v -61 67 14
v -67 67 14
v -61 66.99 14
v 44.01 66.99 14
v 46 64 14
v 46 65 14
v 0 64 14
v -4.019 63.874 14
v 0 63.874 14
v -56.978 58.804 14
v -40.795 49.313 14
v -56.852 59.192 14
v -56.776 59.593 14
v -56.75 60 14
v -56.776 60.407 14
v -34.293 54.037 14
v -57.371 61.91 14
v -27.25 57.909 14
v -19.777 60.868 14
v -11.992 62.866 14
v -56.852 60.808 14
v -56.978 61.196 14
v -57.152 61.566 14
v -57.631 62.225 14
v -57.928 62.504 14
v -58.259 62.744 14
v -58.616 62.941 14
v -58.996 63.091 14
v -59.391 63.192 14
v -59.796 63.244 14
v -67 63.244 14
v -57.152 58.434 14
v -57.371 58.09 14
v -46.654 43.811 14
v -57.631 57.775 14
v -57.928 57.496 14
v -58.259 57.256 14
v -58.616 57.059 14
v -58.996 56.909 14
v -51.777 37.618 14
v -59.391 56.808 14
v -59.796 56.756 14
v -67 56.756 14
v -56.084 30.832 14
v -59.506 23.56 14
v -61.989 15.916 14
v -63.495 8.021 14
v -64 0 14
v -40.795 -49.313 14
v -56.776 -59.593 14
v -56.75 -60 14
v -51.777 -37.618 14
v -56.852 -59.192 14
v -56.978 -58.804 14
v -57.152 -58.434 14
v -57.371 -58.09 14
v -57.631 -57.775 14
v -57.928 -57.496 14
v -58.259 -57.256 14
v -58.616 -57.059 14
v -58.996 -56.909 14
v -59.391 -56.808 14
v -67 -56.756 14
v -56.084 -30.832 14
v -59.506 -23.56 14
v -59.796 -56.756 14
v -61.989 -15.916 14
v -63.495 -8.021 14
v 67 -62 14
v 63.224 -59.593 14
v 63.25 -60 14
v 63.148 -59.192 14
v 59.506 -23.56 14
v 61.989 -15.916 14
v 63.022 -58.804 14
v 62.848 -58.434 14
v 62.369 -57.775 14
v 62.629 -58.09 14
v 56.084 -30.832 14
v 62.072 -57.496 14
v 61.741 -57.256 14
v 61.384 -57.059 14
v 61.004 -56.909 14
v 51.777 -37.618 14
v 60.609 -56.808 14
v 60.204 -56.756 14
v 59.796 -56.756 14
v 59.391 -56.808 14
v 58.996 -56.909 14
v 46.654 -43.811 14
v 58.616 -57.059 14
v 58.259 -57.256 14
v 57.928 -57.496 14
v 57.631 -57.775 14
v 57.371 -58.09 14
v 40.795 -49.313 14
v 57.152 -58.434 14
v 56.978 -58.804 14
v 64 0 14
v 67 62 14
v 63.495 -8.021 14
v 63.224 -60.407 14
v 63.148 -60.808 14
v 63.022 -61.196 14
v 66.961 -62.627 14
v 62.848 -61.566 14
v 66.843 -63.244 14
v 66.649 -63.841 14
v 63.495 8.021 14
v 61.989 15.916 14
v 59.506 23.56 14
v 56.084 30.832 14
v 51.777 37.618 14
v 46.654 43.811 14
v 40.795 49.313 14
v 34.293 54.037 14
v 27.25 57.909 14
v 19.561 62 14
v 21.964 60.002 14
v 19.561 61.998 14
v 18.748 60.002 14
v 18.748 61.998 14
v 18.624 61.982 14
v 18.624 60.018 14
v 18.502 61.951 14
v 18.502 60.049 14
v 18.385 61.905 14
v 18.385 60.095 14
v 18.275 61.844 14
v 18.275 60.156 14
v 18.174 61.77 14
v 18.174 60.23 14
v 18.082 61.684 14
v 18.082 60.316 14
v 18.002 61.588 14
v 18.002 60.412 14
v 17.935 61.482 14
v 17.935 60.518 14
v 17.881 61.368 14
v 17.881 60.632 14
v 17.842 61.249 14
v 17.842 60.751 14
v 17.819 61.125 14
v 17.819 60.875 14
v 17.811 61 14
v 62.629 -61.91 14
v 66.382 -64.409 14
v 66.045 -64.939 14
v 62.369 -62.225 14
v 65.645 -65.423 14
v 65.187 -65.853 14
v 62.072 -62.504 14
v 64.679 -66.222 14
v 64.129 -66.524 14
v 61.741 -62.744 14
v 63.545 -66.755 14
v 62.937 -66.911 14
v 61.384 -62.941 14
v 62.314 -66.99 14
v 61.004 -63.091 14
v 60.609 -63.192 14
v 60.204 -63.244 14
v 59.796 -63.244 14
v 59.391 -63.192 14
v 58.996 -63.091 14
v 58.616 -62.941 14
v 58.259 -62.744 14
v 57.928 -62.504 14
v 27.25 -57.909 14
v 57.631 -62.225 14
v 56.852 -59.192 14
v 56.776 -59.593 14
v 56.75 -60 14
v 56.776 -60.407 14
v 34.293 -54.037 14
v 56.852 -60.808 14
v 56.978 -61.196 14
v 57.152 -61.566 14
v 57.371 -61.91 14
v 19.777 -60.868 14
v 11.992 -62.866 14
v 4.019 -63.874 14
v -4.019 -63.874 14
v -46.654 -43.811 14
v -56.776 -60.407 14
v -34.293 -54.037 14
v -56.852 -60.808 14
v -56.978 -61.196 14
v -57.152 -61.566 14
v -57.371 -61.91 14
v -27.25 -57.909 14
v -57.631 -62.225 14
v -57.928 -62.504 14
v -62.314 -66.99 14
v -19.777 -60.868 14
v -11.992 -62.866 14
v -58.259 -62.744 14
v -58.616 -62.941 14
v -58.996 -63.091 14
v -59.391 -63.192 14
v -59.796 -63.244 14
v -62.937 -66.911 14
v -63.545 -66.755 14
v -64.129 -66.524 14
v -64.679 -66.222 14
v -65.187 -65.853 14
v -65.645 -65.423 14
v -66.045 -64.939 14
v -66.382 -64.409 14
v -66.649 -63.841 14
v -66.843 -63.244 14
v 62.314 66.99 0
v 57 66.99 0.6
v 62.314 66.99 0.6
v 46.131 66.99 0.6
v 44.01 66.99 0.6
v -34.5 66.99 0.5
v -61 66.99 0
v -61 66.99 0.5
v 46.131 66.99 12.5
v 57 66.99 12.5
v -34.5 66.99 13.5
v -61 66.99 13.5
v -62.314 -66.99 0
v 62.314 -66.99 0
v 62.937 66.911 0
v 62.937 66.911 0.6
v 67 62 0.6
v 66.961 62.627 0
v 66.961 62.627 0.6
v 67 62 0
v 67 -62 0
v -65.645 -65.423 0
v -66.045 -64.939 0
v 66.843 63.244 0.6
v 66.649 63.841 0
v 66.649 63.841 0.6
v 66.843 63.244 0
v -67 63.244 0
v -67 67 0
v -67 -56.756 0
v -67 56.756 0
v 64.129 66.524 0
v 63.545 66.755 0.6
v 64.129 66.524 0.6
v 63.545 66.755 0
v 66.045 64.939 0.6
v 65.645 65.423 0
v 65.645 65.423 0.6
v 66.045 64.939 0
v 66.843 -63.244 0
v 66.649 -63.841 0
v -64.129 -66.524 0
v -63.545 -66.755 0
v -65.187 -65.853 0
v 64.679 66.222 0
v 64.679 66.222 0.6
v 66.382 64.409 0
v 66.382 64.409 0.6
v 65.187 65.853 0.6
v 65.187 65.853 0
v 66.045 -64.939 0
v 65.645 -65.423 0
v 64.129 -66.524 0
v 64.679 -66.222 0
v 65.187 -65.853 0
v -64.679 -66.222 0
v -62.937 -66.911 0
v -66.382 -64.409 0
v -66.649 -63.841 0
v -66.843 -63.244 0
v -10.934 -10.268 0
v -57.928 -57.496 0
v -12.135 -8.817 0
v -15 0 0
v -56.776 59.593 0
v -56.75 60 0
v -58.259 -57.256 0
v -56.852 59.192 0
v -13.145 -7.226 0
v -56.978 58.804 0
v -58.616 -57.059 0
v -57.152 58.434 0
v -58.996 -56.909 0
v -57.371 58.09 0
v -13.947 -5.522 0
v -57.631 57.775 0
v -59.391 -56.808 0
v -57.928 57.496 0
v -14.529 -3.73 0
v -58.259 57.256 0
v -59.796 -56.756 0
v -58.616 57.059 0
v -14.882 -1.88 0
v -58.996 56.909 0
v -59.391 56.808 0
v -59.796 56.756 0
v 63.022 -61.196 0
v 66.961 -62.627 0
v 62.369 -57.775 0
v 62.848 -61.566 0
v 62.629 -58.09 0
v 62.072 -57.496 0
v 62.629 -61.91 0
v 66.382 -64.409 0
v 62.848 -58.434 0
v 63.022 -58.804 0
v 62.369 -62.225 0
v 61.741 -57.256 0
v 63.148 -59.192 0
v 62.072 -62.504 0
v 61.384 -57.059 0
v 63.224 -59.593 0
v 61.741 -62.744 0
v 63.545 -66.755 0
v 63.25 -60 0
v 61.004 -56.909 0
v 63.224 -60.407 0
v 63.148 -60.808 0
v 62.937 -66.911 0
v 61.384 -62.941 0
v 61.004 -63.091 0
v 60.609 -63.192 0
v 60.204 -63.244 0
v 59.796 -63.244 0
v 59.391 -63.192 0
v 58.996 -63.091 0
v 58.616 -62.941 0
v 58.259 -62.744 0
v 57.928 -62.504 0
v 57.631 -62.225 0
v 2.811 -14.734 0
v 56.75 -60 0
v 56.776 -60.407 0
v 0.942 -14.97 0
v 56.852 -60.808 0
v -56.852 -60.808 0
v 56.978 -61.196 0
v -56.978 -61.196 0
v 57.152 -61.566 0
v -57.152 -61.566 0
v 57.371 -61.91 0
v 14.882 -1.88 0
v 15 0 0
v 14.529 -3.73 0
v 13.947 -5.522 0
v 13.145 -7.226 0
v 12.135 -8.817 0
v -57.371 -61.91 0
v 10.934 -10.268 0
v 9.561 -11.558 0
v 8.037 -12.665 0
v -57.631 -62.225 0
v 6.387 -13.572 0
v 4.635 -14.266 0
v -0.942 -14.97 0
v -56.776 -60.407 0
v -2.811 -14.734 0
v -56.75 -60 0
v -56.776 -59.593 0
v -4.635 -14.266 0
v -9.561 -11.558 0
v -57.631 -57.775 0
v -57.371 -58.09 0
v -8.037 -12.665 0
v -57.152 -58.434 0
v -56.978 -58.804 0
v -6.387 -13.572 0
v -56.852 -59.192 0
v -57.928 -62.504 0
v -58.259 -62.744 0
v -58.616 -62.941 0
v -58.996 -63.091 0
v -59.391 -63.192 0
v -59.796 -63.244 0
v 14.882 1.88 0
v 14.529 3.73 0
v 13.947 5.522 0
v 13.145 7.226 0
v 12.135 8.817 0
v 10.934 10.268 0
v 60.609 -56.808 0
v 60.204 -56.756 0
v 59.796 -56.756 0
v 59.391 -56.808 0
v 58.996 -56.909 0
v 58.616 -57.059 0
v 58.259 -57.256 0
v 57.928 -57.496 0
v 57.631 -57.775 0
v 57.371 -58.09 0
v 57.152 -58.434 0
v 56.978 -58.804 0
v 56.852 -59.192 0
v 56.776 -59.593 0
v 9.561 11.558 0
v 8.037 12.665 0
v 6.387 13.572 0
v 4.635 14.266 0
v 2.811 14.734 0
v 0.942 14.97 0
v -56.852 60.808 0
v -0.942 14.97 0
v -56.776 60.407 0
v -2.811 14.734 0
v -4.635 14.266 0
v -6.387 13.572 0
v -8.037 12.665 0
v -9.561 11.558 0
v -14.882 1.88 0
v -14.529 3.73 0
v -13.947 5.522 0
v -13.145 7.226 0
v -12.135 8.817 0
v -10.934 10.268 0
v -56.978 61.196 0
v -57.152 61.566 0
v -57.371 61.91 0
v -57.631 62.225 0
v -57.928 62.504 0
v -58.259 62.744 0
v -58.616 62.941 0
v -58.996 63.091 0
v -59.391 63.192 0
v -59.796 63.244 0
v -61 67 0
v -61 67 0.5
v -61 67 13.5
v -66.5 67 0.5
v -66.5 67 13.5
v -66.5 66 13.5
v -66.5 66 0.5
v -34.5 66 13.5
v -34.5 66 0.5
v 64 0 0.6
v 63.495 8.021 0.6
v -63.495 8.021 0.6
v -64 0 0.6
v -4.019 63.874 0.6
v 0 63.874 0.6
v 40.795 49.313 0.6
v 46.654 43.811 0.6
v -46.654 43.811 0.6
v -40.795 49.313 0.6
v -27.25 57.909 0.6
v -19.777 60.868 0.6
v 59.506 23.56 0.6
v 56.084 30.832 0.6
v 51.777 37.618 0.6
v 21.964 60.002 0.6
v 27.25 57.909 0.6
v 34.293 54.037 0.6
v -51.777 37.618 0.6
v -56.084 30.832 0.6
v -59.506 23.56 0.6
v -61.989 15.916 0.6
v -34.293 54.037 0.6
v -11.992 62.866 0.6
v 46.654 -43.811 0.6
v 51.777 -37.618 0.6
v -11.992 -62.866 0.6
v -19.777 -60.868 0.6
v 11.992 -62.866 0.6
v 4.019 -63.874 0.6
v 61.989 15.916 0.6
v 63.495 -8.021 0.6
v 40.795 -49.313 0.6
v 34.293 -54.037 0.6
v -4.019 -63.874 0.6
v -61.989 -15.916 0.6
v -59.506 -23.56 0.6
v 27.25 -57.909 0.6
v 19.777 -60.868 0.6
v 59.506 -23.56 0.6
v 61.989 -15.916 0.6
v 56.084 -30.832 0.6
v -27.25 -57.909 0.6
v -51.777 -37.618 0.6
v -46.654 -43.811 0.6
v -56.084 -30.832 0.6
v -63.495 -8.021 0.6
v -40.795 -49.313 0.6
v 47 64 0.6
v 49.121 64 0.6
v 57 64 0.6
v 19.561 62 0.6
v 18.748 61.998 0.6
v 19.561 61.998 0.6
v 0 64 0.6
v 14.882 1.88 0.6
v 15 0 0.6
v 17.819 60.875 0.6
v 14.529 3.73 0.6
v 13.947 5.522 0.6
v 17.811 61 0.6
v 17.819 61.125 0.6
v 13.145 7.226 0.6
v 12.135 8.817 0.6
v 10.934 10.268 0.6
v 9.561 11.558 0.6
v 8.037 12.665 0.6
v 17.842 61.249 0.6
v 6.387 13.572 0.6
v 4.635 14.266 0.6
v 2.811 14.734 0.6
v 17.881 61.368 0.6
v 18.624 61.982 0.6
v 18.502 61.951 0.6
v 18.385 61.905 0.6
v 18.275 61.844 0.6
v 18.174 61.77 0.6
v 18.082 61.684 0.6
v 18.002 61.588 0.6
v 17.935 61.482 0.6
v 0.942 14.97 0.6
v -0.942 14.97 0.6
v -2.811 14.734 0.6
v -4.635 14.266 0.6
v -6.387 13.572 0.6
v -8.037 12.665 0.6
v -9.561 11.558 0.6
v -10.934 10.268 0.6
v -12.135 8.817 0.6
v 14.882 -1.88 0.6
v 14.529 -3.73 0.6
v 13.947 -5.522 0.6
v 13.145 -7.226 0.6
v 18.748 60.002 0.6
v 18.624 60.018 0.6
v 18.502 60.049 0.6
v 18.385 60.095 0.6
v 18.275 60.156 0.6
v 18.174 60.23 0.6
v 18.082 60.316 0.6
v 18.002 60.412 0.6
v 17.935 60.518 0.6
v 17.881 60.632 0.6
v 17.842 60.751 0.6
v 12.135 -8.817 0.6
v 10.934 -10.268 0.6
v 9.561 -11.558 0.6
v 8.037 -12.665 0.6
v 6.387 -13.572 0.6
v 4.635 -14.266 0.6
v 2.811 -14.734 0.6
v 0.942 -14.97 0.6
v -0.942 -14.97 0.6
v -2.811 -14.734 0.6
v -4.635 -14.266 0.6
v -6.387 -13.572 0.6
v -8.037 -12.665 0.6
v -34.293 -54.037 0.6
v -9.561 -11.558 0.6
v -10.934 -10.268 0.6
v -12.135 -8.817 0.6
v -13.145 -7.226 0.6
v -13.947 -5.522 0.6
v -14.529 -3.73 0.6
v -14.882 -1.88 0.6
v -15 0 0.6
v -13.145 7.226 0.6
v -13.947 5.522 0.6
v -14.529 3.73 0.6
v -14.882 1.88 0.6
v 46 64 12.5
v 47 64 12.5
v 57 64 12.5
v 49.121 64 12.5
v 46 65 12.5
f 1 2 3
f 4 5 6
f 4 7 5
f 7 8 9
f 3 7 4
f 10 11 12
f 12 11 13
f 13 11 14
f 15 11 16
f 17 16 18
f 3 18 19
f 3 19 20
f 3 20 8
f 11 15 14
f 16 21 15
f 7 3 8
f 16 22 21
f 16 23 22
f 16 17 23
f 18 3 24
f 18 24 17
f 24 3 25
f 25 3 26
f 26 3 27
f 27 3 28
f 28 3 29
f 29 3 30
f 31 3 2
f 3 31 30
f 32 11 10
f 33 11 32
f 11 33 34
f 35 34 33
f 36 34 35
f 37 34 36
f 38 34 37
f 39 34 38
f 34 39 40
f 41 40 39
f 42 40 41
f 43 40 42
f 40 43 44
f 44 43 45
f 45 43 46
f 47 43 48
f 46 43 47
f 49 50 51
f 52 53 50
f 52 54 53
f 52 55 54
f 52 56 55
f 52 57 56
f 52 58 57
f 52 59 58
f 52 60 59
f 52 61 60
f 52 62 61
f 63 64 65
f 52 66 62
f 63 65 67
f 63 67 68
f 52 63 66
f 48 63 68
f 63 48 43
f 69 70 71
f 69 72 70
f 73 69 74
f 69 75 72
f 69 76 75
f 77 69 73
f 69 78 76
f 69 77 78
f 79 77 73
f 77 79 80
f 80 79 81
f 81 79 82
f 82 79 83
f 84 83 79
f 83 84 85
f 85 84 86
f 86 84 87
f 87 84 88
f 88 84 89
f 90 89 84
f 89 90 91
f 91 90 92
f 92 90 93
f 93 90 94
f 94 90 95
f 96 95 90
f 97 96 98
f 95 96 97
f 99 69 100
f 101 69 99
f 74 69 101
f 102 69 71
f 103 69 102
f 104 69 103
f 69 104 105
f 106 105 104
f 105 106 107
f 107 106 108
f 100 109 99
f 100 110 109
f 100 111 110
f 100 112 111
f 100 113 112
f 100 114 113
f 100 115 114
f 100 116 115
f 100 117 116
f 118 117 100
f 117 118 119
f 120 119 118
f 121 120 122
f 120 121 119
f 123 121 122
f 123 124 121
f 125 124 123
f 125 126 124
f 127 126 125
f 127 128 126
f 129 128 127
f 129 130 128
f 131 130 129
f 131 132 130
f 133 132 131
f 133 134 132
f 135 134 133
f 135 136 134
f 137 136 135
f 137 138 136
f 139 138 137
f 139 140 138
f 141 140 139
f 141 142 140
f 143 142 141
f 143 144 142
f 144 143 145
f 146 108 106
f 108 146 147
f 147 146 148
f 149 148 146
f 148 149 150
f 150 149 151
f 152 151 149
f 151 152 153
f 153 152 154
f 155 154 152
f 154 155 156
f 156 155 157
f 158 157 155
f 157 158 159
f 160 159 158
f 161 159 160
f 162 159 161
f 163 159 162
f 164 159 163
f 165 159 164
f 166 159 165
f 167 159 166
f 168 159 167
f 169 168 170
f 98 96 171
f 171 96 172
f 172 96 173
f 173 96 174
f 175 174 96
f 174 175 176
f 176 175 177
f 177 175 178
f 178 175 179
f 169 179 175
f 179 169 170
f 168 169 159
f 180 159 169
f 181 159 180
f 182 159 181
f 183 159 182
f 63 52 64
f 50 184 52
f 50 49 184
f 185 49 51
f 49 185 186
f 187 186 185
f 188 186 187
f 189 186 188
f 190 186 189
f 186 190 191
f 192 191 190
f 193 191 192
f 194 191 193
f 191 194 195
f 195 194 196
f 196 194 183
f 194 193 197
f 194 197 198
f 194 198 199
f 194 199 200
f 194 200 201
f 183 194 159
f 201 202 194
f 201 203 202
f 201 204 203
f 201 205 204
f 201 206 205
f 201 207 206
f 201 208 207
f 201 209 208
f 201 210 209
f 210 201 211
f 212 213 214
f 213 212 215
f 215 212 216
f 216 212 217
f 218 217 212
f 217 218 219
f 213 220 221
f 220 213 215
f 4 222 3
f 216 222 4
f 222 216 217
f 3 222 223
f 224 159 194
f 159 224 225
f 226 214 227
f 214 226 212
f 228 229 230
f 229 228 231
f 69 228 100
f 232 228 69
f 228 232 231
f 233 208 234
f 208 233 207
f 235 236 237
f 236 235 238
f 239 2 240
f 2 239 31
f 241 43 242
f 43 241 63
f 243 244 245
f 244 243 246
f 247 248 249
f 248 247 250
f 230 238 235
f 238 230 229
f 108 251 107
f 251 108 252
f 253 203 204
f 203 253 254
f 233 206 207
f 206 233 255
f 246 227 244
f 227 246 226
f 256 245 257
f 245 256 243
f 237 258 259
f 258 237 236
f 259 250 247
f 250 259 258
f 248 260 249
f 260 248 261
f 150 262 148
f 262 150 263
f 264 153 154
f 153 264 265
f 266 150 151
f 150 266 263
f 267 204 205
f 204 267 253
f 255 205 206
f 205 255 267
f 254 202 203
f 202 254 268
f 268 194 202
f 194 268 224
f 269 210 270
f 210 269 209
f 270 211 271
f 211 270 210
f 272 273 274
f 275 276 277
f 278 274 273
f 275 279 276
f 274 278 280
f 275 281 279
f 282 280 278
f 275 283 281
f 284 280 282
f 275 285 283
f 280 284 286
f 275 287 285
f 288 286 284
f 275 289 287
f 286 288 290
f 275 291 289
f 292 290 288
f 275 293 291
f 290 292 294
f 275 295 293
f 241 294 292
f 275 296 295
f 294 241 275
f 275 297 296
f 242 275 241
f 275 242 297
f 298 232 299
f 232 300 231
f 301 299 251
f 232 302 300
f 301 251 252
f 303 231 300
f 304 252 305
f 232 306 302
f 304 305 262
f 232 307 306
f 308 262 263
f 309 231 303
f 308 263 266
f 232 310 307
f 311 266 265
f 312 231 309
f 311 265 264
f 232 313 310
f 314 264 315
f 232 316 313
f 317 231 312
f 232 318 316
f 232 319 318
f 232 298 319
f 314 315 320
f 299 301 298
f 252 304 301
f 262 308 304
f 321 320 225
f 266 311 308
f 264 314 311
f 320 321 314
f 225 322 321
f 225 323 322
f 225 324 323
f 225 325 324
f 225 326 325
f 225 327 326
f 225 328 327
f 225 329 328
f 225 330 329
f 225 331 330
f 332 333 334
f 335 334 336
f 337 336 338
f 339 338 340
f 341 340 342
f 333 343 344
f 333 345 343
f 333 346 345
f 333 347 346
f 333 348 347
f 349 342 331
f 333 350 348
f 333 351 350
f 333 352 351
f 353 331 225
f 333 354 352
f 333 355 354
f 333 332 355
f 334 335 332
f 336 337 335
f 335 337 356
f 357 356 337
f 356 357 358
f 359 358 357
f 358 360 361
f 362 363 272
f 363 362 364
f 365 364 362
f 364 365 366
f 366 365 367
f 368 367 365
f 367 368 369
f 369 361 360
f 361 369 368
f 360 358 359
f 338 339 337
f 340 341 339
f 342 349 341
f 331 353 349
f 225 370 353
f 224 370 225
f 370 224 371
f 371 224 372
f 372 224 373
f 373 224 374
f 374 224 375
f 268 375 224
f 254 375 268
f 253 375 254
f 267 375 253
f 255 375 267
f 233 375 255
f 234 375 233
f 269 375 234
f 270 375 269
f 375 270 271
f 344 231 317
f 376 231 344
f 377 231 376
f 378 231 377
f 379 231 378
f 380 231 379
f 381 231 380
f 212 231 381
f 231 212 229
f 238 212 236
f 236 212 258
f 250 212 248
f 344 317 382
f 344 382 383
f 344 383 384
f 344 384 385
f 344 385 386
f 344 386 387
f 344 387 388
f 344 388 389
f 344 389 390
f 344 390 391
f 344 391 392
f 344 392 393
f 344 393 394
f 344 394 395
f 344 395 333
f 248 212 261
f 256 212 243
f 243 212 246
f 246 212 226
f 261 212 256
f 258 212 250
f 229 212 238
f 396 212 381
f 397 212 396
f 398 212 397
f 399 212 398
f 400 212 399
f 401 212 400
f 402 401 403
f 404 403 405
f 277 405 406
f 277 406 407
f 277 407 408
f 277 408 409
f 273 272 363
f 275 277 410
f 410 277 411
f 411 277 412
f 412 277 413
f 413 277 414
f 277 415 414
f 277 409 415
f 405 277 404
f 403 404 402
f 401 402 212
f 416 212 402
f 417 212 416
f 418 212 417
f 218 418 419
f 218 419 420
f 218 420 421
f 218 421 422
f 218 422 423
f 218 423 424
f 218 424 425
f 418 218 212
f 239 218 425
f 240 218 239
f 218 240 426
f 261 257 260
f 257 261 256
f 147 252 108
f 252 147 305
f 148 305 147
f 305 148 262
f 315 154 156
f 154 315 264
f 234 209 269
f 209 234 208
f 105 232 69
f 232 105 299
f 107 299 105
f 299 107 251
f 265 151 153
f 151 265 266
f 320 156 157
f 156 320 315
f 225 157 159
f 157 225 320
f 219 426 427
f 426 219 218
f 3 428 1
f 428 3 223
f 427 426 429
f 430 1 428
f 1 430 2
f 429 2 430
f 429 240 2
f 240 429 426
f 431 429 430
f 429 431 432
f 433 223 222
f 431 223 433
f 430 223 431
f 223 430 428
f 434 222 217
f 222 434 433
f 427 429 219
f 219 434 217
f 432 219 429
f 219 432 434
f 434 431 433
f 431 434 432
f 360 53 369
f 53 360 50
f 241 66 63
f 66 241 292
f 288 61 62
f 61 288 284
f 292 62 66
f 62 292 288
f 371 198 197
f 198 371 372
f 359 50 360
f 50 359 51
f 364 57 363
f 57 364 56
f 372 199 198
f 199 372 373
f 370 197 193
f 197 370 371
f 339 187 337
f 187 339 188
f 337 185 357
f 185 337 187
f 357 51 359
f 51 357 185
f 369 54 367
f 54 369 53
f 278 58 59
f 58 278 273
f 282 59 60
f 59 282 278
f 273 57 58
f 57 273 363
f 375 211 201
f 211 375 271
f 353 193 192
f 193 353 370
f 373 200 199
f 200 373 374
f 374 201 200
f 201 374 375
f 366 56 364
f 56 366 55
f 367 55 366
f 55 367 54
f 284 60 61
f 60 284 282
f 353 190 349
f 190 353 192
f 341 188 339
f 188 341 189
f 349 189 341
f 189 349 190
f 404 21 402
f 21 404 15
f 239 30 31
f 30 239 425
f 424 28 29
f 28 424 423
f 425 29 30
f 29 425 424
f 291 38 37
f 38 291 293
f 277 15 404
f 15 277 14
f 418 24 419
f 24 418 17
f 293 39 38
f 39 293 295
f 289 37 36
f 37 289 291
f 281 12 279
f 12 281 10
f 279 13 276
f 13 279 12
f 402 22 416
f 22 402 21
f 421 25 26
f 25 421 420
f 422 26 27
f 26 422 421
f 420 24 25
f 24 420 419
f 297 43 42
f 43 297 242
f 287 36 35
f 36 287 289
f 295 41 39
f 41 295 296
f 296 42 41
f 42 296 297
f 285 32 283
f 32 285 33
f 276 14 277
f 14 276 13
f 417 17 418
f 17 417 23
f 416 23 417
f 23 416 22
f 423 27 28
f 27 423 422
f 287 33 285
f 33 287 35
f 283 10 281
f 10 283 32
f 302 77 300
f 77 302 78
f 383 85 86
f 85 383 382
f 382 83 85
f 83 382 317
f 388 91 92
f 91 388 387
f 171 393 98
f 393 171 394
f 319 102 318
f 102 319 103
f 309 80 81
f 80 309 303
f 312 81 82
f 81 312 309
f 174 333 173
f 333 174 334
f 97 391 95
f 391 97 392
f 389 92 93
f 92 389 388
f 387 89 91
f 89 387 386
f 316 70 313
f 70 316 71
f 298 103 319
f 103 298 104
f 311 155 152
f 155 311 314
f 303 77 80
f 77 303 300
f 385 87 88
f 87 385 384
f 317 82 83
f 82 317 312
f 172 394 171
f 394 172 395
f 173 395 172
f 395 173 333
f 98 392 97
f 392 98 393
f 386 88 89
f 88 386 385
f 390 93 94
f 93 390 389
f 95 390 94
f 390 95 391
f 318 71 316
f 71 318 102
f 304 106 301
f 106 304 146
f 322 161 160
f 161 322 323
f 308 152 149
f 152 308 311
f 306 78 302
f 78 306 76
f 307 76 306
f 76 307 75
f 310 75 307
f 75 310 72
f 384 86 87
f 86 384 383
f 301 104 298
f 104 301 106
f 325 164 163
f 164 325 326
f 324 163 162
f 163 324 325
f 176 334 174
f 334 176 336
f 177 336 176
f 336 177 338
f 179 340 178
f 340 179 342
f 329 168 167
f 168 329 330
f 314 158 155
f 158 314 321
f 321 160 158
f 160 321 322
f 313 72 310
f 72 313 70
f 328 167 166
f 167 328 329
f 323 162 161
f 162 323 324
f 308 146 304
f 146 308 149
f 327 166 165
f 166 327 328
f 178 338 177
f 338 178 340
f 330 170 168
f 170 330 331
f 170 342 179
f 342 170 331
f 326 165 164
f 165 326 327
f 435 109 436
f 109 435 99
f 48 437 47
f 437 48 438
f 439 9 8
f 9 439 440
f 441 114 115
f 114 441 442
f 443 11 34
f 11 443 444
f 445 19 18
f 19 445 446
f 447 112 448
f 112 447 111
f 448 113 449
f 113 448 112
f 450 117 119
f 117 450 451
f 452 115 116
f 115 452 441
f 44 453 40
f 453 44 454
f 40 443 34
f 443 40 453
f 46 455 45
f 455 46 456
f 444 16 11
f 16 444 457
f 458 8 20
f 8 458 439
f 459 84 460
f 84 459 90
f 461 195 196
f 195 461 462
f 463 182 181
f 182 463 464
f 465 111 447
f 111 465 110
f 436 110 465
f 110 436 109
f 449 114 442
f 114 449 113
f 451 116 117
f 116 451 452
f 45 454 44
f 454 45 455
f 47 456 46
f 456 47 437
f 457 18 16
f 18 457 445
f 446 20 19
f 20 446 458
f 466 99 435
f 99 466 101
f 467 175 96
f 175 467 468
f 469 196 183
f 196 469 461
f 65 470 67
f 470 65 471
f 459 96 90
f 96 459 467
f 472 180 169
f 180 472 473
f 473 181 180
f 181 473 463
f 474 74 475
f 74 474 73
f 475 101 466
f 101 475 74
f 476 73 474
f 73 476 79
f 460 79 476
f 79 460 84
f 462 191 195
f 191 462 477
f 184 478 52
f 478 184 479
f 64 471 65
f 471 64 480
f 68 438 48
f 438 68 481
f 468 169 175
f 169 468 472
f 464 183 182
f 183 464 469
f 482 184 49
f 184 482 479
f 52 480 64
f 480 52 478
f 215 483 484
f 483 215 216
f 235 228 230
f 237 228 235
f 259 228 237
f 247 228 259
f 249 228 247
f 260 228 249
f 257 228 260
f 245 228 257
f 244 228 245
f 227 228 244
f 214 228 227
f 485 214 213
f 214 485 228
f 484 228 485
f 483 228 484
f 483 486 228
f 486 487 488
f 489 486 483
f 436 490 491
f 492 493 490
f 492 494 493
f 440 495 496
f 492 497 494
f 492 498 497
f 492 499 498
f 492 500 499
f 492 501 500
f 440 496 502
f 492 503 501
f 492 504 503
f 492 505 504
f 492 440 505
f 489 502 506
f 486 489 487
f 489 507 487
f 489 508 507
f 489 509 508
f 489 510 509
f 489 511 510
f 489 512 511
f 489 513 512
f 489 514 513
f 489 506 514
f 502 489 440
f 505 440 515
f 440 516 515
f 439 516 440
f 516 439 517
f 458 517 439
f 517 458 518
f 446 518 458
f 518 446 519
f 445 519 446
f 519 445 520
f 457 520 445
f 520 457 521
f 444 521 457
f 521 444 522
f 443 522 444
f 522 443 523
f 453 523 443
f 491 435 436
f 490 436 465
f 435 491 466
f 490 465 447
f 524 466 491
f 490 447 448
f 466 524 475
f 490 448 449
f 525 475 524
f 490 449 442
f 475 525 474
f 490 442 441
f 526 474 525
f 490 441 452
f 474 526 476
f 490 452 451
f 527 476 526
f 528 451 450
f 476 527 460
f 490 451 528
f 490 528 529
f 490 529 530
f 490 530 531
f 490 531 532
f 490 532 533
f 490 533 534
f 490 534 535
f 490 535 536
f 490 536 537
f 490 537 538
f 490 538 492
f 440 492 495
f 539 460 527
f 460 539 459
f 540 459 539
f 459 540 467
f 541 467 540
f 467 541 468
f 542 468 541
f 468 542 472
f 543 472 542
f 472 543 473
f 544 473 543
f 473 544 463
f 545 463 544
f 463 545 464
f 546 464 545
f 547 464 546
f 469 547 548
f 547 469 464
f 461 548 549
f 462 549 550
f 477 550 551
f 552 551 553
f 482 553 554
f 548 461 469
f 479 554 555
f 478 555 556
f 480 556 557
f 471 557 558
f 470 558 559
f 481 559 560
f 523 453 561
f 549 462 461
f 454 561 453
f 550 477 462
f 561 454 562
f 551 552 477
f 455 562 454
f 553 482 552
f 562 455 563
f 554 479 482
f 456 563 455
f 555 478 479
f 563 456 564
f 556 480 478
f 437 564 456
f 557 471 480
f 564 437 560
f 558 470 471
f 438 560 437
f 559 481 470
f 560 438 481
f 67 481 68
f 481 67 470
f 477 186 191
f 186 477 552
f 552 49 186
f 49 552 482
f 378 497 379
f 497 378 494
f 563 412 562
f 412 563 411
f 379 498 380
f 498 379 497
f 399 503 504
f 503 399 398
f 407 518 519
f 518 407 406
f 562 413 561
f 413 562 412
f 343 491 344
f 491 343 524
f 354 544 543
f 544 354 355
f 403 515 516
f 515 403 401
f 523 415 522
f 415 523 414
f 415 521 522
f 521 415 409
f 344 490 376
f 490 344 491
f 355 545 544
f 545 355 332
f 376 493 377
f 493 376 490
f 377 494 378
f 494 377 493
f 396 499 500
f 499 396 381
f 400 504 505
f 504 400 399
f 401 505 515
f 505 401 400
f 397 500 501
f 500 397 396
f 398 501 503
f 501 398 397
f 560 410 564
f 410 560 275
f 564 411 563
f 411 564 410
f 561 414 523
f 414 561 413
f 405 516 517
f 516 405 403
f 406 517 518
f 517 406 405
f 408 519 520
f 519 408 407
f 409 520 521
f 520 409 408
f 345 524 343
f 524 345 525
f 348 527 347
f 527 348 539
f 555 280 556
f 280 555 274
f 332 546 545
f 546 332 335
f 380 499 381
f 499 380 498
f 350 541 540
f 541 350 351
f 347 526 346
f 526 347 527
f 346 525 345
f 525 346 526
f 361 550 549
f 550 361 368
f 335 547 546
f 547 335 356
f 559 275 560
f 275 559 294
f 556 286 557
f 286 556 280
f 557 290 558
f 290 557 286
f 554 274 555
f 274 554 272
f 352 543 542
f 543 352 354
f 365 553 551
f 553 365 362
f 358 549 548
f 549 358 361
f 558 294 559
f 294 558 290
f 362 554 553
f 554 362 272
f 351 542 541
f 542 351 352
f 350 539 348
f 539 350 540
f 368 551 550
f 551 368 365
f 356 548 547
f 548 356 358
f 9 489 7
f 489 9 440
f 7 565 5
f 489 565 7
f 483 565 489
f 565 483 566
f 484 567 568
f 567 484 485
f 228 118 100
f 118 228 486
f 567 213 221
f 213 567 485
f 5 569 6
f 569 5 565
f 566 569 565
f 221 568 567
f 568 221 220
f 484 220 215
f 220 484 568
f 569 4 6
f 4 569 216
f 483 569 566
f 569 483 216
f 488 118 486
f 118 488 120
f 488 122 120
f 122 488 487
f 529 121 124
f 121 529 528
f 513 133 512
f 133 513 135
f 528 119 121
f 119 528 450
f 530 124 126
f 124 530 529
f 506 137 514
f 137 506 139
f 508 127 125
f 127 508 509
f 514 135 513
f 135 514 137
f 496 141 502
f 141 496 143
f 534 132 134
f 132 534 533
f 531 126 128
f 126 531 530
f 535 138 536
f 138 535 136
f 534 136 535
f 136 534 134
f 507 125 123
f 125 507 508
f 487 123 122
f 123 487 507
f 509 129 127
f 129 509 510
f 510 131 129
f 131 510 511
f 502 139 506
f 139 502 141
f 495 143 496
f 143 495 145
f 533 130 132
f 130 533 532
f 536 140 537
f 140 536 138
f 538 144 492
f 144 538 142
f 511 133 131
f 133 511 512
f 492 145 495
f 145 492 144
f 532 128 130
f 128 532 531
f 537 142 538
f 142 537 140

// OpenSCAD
$fn = 50;


union() {
	difference() {
		union() {
			translate(v = [0, 0, 0]) {
				rotate(a = [0, 0, 0]) {
					hull() {
						translate(v = [-62.0000000000, 62.0000000000, 0]) {
							rotate(a = [0, 0, 0]) {
								translate(v = [0, 0, 0]) {
									rotate(a = [0, 0, 0]) {
										cylinder(h = 14, r = 5);
									}
								}
							}
						}
						translate(v = [62.0000000000, 62.0000000000, 0]) {
							rotate(a = [0, 0, 0]) {
								translate(v = [0, 0, 0]) {
									rotate(a = [0, 0, 0]) {
										cylinder(h = 14, r = 5);
									}
								}
							}
						}
						translate(v = [-62.0000000000, -62.0000000000, 0]) {
							rotate(a = [0, 0, 0]) {
								translate(v = [0, 0, 0]) {
									rotate(a = [0, 0, 0]) {
										cylinder(h = 14, r = 5);
									}
								}
							}
						}
						translate(v = [62.0000000000, -62.0000000000, 0]) {
							rotate(a = [0, 0, 0]) {
								translate(v = [0, 0, 0]) {
									rotate(a = [0, 0, 0]) {
										cylinder(h = 14, r = 5);
									}
								}
							}
						}
					}
				}
			}
			translate(v = [-67.0000000000, 61.0000000000, 0]) {
				rotate(a = [0, 0, 0]) {
					cube(size = [6, 6, 14]);
				}
			}
		}
		union() {
			#translate(v = [-66.5000000000, 66.0000000000, 0.5000000000]) {
				rotate(a = [0, 0, 0]) {
					cube(size = [32, 1, 13.0000000000]);
				}
			}
			translate(v = [-67.5000000000, -60.0000000000, -125]) {
				rotate(a = [0, 0, 0]) {
					hull() {
						translate(v = [7.5000000000, 0, 0]) {
							rotate(a = [0, 0, 0]) {
								translate(v = [0, 0, 0]) {
									rotate(a = [0, 0, 0]) {
										cylinder(h = 250, r = 3.2500000000);
									}
								}
							}
						}
						translate(v = [-7.5000000000, 0, 0]) {
							rotate(a = [0, 0, 0]) {
								translate(v = [0, 0, 0]) {
									rotate(a = [0, 0, 0]) {
										cylinder(h = 250, r = 3.2500000000);
									}
								}
							}
						}
					}
				}
			}
			translate(v = [-67.5000000000, 60.0000000000, -125]) {
				rotate(a = [0, 0, 0]) {
					hull() {
						translate(v = [7.5000000000, 0, 0]) {
							rotate(a = [0, 0, 0]) {
								translate(v = [0, 0, 0]) {
									rotate(a = [0, 0, 0]) {
										cylinder(h = 250, r = 3.2500000000);
									}
								}
							}
						}
						translate(v = [-7.5000000000, 0, 0]) {
							rotate(a = [0, 0, 0]) {
								translate(v = [0, 0, 0]) {
									rotate(a = [0, 0, 0]) {
										cylinder(h = 250, r = 3.2500000000);
									}
								}
							}
						}
					}
				}
			}
			translate(v = [60.0000000000, -60.0000000000, -125.0000000000]) {
				rotate(a = [0, 0, 0]) {
					cylinder(h = 250, r = 3.2500000000);
				}
			}
			translate(v = [0, 0, 0.6000000000]) {
				rotate(a = [0, 0, 0]) {
					cylinder(h = 16.4000000000, r = 64.0000000000);
				}
			}
			translate(v = [0, 0, -7.0000000000]) {
				rotate(a = [0, 0, 0]) {
					cylinder(h = 14, r = 15.0000000000);
				}
			}
			translate(v = [0.0000000000, 62.0000000000, 0.6000000000]) {
				rotate(a = [0, 0, 0]) {
					cube(size = [67.0000000000, 2, 16.4000000000]);
				}
			}
			translate(v = [57.0000000000, 62.0000000000, 0.6000000000]) {
				rotate(a = [0, 0, 0]) {
					cube(size = [10, 5, 16.4000000000]);
				}
			}
			translate(v = [46.0000000000, 62.0000000000, 12.5000000000]) {
				rotate(a = [0, 0, 0]) {
					cube(size = [21, 5, 1.5000000000]);
				}
			}
			translate(v = [43.2500000000, 67.7500000000, 0.6000000000]) {
				rotate(a = [0, 0, -45]) {
					cube(size = [7.5000000000, 1.5000000000, 16.4000000000]);
				}
			}
			translate(v = [12.0610000000, 60.0000000000, 0.6000000000]) {
				rotate(a = [0, 0, 0]) {
					cube(size = [7.5000000000, 2, 13.4000000000]);
				}
			}
		}
	}
	union() {
		translate(v = [21.3110000000, 61.0000000000, 0]) {
			rotate(a = [0, 0, 0]) {
				hull() {
					translate(v = [2.5000000000, 0, 0]) {
						rotate(a = [0, 0, 0]) {
							#translate(v = [0, 0, 0]) {
								rotate(a = [0, 0, 0]) {
									cylinder(h = 14, r = 1.0000000000);
								}
							}
						}
					}
					translate(v = [-2.5000000000, 0, 0]) {
						rotate(a = [0, 0, 0]) {
							#translate(v = [0, 0, 0]) {
								rotate(a = [0, 0, 0]) {
									cylinder(h = 14, r = 1.0000000000);
								}
							}
						}
					}
				}
			}
		}
	}
}
